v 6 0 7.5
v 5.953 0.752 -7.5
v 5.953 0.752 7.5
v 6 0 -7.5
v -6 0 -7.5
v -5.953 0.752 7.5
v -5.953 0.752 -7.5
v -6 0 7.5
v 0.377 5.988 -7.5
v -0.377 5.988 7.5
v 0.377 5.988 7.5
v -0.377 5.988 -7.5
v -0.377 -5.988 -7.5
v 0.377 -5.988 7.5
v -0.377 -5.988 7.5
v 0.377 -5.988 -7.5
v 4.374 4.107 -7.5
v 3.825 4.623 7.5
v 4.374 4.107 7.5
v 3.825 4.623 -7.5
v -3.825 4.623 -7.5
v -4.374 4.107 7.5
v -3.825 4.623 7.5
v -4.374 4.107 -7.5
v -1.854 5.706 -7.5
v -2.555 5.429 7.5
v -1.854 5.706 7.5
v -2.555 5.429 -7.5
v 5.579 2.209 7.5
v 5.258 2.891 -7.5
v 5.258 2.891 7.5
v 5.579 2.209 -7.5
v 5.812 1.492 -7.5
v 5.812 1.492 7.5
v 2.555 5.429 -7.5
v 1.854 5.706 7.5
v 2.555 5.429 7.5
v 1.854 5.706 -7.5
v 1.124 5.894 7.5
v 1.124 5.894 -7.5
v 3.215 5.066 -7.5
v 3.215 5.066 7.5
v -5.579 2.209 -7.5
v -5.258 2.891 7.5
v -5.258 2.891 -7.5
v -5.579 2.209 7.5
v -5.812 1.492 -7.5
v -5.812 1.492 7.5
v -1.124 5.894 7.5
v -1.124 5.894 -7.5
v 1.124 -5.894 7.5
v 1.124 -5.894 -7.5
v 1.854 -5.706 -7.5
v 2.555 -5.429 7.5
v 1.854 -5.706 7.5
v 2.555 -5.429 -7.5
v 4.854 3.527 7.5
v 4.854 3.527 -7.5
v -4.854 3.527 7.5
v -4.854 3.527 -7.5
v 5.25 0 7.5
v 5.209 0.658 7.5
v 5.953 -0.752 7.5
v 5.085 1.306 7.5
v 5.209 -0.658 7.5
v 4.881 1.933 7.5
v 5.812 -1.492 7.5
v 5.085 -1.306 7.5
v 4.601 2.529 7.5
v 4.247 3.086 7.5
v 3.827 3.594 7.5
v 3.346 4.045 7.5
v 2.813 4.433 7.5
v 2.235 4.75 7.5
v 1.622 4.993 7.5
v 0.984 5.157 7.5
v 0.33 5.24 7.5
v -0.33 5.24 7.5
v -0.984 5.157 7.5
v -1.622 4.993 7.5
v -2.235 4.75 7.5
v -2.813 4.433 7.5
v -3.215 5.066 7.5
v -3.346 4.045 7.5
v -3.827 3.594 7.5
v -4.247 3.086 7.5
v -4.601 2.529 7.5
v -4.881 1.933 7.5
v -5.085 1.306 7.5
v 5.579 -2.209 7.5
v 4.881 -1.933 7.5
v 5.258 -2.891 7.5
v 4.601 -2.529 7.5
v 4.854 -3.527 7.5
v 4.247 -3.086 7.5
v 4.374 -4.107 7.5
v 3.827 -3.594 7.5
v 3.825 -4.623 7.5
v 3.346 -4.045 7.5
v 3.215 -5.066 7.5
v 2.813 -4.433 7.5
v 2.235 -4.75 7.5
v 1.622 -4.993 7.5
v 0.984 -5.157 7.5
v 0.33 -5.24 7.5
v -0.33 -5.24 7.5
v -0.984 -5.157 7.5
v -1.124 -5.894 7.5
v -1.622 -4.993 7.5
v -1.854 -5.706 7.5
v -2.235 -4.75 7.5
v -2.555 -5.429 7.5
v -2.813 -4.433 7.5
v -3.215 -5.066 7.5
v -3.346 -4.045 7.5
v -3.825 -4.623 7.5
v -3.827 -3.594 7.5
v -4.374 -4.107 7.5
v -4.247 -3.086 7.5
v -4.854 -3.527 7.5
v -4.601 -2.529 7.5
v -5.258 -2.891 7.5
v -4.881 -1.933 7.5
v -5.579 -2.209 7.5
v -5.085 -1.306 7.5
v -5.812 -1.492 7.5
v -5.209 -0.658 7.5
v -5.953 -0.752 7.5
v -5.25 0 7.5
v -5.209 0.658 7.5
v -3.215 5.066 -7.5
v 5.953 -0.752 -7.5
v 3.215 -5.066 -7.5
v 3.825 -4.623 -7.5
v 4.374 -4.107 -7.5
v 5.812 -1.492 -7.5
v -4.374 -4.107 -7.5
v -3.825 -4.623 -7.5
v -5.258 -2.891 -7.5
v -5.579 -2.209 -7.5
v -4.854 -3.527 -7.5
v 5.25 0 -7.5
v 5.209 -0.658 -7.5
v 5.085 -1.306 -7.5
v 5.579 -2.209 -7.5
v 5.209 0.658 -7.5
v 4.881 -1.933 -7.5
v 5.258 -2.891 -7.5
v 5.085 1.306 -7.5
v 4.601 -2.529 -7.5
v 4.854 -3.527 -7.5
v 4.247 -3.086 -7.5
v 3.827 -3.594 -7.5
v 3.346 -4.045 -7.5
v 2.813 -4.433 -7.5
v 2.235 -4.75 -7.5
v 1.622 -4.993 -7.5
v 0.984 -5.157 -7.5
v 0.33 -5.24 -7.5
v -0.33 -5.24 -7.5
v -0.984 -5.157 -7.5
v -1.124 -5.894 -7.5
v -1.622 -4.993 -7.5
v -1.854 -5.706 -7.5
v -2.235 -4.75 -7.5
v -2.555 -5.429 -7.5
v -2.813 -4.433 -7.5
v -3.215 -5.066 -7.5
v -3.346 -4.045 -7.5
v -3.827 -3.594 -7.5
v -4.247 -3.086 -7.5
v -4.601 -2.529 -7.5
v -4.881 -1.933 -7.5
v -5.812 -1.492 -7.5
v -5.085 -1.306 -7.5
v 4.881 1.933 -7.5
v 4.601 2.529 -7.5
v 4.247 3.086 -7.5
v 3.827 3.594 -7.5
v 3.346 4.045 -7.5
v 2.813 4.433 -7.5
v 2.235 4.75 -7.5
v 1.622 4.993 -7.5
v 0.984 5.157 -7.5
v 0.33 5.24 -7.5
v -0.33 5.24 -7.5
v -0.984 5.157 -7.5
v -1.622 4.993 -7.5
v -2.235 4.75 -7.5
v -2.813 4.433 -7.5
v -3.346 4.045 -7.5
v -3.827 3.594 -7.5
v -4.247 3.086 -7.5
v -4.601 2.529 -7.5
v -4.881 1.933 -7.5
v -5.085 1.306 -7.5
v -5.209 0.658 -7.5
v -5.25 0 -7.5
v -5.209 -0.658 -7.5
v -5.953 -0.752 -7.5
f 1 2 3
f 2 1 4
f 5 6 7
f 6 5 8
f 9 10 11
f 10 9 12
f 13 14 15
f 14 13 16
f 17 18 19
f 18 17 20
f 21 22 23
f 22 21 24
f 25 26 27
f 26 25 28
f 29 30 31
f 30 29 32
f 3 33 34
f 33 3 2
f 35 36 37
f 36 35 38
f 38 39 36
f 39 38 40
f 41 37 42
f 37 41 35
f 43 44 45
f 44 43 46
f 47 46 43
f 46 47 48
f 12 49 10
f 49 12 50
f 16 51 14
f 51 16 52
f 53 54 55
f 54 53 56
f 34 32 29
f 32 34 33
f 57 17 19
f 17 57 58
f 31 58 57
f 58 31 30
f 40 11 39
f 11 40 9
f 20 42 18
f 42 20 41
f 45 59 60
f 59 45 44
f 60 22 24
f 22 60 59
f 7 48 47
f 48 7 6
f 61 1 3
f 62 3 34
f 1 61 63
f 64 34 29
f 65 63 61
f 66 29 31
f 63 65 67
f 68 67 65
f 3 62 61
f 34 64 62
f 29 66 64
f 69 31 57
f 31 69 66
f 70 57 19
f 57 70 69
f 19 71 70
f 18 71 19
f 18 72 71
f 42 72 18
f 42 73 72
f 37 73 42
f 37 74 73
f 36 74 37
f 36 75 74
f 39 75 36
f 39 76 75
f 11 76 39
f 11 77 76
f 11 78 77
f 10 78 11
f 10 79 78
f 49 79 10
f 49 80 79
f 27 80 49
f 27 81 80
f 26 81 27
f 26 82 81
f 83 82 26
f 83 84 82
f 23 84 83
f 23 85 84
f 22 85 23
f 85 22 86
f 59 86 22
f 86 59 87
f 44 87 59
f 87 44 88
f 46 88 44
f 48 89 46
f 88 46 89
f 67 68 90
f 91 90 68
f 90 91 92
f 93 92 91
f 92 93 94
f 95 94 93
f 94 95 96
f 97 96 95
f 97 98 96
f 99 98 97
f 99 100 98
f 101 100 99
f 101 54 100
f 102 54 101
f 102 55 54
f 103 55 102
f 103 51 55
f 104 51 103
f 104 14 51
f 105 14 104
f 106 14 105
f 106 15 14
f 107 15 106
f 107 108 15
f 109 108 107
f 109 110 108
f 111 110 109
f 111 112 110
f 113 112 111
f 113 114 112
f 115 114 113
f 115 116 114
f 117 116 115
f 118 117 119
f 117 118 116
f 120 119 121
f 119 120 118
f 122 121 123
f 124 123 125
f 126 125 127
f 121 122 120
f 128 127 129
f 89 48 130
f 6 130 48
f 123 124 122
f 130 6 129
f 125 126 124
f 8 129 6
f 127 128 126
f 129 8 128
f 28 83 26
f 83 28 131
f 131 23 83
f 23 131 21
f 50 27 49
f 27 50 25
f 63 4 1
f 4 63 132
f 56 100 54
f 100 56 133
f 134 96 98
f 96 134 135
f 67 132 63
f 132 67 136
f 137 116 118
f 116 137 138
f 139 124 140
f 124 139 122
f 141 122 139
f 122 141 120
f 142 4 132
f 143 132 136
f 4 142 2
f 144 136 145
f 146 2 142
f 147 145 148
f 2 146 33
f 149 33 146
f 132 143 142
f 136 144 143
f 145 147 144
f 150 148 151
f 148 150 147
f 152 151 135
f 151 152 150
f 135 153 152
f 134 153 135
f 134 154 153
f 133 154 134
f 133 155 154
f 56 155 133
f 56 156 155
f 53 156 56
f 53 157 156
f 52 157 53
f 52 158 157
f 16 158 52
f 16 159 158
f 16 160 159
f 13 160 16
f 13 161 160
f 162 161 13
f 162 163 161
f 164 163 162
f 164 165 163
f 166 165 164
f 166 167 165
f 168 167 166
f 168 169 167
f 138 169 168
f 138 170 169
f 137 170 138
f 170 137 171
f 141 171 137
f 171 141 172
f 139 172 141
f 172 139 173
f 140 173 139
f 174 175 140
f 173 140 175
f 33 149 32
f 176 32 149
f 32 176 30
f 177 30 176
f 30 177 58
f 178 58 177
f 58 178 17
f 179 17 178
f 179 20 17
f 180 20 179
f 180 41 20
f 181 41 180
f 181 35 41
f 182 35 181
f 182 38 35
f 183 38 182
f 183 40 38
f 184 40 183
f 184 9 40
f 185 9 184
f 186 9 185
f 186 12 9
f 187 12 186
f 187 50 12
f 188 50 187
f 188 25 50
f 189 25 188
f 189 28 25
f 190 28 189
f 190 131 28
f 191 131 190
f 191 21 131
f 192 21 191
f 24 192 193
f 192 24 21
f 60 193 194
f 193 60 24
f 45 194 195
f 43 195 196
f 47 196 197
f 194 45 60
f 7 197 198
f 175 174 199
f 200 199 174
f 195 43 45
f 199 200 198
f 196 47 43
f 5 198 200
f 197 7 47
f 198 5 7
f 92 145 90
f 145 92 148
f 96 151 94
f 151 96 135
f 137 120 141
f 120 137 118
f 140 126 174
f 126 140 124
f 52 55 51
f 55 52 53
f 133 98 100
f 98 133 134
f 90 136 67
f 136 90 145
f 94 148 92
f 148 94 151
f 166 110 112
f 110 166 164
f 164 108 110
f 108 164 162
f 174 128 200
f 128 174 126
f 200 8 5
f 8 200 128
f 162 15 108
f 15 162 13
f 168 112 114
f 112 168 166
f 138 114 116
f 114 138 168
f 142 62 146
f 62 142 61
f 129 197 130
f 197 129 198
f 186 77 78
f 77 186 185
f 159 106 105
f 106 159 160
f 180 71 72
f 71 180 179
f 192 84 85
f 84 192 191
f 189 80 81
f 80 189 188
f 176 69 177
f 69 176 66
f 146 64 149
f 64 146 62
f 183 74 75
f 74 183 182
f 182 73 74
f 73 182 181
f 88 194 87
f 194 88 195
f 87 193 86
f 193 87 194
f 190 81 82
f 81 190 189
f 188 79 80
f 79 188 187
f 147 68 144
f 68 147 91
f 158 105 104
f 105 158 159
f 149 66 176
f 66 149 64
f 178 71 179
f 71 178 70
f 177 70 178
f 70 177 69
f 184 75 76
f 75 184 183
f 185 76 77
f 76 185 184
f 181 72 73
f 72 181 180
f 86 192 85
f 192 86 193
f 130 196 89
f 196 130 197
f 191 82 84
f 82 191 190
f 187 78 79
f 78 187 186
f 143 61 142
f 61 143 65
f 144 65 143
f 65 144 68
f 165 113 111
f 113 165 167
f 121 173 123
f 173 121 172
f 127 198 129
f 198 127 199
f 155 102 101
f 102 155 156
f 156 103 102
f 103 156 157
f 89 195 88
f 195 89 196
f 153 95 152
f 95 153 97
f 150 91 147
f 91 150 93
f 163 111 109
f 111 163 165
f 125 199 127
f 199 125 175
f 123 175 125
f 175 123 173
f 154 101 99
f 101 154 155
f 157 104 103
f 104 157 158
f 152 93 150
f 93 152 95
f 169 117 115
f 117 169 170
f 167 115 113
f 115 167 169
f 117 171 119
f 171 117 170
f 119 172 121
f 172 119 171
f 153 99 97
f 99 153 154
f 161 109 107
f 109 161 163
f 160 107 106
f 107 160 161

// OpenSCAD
$fn = 50;


difference() {
	union() {
		translate(v = [0, 0, -7.5000000000]) {
			cylinder(h = 15, r = 6.0000000000);
		}
	}
	union() {
		translate(v = [0, 0, -100.0000000000]) {
			cylinder(h = 200, r = 5.2500000000);
		}
	}
}
